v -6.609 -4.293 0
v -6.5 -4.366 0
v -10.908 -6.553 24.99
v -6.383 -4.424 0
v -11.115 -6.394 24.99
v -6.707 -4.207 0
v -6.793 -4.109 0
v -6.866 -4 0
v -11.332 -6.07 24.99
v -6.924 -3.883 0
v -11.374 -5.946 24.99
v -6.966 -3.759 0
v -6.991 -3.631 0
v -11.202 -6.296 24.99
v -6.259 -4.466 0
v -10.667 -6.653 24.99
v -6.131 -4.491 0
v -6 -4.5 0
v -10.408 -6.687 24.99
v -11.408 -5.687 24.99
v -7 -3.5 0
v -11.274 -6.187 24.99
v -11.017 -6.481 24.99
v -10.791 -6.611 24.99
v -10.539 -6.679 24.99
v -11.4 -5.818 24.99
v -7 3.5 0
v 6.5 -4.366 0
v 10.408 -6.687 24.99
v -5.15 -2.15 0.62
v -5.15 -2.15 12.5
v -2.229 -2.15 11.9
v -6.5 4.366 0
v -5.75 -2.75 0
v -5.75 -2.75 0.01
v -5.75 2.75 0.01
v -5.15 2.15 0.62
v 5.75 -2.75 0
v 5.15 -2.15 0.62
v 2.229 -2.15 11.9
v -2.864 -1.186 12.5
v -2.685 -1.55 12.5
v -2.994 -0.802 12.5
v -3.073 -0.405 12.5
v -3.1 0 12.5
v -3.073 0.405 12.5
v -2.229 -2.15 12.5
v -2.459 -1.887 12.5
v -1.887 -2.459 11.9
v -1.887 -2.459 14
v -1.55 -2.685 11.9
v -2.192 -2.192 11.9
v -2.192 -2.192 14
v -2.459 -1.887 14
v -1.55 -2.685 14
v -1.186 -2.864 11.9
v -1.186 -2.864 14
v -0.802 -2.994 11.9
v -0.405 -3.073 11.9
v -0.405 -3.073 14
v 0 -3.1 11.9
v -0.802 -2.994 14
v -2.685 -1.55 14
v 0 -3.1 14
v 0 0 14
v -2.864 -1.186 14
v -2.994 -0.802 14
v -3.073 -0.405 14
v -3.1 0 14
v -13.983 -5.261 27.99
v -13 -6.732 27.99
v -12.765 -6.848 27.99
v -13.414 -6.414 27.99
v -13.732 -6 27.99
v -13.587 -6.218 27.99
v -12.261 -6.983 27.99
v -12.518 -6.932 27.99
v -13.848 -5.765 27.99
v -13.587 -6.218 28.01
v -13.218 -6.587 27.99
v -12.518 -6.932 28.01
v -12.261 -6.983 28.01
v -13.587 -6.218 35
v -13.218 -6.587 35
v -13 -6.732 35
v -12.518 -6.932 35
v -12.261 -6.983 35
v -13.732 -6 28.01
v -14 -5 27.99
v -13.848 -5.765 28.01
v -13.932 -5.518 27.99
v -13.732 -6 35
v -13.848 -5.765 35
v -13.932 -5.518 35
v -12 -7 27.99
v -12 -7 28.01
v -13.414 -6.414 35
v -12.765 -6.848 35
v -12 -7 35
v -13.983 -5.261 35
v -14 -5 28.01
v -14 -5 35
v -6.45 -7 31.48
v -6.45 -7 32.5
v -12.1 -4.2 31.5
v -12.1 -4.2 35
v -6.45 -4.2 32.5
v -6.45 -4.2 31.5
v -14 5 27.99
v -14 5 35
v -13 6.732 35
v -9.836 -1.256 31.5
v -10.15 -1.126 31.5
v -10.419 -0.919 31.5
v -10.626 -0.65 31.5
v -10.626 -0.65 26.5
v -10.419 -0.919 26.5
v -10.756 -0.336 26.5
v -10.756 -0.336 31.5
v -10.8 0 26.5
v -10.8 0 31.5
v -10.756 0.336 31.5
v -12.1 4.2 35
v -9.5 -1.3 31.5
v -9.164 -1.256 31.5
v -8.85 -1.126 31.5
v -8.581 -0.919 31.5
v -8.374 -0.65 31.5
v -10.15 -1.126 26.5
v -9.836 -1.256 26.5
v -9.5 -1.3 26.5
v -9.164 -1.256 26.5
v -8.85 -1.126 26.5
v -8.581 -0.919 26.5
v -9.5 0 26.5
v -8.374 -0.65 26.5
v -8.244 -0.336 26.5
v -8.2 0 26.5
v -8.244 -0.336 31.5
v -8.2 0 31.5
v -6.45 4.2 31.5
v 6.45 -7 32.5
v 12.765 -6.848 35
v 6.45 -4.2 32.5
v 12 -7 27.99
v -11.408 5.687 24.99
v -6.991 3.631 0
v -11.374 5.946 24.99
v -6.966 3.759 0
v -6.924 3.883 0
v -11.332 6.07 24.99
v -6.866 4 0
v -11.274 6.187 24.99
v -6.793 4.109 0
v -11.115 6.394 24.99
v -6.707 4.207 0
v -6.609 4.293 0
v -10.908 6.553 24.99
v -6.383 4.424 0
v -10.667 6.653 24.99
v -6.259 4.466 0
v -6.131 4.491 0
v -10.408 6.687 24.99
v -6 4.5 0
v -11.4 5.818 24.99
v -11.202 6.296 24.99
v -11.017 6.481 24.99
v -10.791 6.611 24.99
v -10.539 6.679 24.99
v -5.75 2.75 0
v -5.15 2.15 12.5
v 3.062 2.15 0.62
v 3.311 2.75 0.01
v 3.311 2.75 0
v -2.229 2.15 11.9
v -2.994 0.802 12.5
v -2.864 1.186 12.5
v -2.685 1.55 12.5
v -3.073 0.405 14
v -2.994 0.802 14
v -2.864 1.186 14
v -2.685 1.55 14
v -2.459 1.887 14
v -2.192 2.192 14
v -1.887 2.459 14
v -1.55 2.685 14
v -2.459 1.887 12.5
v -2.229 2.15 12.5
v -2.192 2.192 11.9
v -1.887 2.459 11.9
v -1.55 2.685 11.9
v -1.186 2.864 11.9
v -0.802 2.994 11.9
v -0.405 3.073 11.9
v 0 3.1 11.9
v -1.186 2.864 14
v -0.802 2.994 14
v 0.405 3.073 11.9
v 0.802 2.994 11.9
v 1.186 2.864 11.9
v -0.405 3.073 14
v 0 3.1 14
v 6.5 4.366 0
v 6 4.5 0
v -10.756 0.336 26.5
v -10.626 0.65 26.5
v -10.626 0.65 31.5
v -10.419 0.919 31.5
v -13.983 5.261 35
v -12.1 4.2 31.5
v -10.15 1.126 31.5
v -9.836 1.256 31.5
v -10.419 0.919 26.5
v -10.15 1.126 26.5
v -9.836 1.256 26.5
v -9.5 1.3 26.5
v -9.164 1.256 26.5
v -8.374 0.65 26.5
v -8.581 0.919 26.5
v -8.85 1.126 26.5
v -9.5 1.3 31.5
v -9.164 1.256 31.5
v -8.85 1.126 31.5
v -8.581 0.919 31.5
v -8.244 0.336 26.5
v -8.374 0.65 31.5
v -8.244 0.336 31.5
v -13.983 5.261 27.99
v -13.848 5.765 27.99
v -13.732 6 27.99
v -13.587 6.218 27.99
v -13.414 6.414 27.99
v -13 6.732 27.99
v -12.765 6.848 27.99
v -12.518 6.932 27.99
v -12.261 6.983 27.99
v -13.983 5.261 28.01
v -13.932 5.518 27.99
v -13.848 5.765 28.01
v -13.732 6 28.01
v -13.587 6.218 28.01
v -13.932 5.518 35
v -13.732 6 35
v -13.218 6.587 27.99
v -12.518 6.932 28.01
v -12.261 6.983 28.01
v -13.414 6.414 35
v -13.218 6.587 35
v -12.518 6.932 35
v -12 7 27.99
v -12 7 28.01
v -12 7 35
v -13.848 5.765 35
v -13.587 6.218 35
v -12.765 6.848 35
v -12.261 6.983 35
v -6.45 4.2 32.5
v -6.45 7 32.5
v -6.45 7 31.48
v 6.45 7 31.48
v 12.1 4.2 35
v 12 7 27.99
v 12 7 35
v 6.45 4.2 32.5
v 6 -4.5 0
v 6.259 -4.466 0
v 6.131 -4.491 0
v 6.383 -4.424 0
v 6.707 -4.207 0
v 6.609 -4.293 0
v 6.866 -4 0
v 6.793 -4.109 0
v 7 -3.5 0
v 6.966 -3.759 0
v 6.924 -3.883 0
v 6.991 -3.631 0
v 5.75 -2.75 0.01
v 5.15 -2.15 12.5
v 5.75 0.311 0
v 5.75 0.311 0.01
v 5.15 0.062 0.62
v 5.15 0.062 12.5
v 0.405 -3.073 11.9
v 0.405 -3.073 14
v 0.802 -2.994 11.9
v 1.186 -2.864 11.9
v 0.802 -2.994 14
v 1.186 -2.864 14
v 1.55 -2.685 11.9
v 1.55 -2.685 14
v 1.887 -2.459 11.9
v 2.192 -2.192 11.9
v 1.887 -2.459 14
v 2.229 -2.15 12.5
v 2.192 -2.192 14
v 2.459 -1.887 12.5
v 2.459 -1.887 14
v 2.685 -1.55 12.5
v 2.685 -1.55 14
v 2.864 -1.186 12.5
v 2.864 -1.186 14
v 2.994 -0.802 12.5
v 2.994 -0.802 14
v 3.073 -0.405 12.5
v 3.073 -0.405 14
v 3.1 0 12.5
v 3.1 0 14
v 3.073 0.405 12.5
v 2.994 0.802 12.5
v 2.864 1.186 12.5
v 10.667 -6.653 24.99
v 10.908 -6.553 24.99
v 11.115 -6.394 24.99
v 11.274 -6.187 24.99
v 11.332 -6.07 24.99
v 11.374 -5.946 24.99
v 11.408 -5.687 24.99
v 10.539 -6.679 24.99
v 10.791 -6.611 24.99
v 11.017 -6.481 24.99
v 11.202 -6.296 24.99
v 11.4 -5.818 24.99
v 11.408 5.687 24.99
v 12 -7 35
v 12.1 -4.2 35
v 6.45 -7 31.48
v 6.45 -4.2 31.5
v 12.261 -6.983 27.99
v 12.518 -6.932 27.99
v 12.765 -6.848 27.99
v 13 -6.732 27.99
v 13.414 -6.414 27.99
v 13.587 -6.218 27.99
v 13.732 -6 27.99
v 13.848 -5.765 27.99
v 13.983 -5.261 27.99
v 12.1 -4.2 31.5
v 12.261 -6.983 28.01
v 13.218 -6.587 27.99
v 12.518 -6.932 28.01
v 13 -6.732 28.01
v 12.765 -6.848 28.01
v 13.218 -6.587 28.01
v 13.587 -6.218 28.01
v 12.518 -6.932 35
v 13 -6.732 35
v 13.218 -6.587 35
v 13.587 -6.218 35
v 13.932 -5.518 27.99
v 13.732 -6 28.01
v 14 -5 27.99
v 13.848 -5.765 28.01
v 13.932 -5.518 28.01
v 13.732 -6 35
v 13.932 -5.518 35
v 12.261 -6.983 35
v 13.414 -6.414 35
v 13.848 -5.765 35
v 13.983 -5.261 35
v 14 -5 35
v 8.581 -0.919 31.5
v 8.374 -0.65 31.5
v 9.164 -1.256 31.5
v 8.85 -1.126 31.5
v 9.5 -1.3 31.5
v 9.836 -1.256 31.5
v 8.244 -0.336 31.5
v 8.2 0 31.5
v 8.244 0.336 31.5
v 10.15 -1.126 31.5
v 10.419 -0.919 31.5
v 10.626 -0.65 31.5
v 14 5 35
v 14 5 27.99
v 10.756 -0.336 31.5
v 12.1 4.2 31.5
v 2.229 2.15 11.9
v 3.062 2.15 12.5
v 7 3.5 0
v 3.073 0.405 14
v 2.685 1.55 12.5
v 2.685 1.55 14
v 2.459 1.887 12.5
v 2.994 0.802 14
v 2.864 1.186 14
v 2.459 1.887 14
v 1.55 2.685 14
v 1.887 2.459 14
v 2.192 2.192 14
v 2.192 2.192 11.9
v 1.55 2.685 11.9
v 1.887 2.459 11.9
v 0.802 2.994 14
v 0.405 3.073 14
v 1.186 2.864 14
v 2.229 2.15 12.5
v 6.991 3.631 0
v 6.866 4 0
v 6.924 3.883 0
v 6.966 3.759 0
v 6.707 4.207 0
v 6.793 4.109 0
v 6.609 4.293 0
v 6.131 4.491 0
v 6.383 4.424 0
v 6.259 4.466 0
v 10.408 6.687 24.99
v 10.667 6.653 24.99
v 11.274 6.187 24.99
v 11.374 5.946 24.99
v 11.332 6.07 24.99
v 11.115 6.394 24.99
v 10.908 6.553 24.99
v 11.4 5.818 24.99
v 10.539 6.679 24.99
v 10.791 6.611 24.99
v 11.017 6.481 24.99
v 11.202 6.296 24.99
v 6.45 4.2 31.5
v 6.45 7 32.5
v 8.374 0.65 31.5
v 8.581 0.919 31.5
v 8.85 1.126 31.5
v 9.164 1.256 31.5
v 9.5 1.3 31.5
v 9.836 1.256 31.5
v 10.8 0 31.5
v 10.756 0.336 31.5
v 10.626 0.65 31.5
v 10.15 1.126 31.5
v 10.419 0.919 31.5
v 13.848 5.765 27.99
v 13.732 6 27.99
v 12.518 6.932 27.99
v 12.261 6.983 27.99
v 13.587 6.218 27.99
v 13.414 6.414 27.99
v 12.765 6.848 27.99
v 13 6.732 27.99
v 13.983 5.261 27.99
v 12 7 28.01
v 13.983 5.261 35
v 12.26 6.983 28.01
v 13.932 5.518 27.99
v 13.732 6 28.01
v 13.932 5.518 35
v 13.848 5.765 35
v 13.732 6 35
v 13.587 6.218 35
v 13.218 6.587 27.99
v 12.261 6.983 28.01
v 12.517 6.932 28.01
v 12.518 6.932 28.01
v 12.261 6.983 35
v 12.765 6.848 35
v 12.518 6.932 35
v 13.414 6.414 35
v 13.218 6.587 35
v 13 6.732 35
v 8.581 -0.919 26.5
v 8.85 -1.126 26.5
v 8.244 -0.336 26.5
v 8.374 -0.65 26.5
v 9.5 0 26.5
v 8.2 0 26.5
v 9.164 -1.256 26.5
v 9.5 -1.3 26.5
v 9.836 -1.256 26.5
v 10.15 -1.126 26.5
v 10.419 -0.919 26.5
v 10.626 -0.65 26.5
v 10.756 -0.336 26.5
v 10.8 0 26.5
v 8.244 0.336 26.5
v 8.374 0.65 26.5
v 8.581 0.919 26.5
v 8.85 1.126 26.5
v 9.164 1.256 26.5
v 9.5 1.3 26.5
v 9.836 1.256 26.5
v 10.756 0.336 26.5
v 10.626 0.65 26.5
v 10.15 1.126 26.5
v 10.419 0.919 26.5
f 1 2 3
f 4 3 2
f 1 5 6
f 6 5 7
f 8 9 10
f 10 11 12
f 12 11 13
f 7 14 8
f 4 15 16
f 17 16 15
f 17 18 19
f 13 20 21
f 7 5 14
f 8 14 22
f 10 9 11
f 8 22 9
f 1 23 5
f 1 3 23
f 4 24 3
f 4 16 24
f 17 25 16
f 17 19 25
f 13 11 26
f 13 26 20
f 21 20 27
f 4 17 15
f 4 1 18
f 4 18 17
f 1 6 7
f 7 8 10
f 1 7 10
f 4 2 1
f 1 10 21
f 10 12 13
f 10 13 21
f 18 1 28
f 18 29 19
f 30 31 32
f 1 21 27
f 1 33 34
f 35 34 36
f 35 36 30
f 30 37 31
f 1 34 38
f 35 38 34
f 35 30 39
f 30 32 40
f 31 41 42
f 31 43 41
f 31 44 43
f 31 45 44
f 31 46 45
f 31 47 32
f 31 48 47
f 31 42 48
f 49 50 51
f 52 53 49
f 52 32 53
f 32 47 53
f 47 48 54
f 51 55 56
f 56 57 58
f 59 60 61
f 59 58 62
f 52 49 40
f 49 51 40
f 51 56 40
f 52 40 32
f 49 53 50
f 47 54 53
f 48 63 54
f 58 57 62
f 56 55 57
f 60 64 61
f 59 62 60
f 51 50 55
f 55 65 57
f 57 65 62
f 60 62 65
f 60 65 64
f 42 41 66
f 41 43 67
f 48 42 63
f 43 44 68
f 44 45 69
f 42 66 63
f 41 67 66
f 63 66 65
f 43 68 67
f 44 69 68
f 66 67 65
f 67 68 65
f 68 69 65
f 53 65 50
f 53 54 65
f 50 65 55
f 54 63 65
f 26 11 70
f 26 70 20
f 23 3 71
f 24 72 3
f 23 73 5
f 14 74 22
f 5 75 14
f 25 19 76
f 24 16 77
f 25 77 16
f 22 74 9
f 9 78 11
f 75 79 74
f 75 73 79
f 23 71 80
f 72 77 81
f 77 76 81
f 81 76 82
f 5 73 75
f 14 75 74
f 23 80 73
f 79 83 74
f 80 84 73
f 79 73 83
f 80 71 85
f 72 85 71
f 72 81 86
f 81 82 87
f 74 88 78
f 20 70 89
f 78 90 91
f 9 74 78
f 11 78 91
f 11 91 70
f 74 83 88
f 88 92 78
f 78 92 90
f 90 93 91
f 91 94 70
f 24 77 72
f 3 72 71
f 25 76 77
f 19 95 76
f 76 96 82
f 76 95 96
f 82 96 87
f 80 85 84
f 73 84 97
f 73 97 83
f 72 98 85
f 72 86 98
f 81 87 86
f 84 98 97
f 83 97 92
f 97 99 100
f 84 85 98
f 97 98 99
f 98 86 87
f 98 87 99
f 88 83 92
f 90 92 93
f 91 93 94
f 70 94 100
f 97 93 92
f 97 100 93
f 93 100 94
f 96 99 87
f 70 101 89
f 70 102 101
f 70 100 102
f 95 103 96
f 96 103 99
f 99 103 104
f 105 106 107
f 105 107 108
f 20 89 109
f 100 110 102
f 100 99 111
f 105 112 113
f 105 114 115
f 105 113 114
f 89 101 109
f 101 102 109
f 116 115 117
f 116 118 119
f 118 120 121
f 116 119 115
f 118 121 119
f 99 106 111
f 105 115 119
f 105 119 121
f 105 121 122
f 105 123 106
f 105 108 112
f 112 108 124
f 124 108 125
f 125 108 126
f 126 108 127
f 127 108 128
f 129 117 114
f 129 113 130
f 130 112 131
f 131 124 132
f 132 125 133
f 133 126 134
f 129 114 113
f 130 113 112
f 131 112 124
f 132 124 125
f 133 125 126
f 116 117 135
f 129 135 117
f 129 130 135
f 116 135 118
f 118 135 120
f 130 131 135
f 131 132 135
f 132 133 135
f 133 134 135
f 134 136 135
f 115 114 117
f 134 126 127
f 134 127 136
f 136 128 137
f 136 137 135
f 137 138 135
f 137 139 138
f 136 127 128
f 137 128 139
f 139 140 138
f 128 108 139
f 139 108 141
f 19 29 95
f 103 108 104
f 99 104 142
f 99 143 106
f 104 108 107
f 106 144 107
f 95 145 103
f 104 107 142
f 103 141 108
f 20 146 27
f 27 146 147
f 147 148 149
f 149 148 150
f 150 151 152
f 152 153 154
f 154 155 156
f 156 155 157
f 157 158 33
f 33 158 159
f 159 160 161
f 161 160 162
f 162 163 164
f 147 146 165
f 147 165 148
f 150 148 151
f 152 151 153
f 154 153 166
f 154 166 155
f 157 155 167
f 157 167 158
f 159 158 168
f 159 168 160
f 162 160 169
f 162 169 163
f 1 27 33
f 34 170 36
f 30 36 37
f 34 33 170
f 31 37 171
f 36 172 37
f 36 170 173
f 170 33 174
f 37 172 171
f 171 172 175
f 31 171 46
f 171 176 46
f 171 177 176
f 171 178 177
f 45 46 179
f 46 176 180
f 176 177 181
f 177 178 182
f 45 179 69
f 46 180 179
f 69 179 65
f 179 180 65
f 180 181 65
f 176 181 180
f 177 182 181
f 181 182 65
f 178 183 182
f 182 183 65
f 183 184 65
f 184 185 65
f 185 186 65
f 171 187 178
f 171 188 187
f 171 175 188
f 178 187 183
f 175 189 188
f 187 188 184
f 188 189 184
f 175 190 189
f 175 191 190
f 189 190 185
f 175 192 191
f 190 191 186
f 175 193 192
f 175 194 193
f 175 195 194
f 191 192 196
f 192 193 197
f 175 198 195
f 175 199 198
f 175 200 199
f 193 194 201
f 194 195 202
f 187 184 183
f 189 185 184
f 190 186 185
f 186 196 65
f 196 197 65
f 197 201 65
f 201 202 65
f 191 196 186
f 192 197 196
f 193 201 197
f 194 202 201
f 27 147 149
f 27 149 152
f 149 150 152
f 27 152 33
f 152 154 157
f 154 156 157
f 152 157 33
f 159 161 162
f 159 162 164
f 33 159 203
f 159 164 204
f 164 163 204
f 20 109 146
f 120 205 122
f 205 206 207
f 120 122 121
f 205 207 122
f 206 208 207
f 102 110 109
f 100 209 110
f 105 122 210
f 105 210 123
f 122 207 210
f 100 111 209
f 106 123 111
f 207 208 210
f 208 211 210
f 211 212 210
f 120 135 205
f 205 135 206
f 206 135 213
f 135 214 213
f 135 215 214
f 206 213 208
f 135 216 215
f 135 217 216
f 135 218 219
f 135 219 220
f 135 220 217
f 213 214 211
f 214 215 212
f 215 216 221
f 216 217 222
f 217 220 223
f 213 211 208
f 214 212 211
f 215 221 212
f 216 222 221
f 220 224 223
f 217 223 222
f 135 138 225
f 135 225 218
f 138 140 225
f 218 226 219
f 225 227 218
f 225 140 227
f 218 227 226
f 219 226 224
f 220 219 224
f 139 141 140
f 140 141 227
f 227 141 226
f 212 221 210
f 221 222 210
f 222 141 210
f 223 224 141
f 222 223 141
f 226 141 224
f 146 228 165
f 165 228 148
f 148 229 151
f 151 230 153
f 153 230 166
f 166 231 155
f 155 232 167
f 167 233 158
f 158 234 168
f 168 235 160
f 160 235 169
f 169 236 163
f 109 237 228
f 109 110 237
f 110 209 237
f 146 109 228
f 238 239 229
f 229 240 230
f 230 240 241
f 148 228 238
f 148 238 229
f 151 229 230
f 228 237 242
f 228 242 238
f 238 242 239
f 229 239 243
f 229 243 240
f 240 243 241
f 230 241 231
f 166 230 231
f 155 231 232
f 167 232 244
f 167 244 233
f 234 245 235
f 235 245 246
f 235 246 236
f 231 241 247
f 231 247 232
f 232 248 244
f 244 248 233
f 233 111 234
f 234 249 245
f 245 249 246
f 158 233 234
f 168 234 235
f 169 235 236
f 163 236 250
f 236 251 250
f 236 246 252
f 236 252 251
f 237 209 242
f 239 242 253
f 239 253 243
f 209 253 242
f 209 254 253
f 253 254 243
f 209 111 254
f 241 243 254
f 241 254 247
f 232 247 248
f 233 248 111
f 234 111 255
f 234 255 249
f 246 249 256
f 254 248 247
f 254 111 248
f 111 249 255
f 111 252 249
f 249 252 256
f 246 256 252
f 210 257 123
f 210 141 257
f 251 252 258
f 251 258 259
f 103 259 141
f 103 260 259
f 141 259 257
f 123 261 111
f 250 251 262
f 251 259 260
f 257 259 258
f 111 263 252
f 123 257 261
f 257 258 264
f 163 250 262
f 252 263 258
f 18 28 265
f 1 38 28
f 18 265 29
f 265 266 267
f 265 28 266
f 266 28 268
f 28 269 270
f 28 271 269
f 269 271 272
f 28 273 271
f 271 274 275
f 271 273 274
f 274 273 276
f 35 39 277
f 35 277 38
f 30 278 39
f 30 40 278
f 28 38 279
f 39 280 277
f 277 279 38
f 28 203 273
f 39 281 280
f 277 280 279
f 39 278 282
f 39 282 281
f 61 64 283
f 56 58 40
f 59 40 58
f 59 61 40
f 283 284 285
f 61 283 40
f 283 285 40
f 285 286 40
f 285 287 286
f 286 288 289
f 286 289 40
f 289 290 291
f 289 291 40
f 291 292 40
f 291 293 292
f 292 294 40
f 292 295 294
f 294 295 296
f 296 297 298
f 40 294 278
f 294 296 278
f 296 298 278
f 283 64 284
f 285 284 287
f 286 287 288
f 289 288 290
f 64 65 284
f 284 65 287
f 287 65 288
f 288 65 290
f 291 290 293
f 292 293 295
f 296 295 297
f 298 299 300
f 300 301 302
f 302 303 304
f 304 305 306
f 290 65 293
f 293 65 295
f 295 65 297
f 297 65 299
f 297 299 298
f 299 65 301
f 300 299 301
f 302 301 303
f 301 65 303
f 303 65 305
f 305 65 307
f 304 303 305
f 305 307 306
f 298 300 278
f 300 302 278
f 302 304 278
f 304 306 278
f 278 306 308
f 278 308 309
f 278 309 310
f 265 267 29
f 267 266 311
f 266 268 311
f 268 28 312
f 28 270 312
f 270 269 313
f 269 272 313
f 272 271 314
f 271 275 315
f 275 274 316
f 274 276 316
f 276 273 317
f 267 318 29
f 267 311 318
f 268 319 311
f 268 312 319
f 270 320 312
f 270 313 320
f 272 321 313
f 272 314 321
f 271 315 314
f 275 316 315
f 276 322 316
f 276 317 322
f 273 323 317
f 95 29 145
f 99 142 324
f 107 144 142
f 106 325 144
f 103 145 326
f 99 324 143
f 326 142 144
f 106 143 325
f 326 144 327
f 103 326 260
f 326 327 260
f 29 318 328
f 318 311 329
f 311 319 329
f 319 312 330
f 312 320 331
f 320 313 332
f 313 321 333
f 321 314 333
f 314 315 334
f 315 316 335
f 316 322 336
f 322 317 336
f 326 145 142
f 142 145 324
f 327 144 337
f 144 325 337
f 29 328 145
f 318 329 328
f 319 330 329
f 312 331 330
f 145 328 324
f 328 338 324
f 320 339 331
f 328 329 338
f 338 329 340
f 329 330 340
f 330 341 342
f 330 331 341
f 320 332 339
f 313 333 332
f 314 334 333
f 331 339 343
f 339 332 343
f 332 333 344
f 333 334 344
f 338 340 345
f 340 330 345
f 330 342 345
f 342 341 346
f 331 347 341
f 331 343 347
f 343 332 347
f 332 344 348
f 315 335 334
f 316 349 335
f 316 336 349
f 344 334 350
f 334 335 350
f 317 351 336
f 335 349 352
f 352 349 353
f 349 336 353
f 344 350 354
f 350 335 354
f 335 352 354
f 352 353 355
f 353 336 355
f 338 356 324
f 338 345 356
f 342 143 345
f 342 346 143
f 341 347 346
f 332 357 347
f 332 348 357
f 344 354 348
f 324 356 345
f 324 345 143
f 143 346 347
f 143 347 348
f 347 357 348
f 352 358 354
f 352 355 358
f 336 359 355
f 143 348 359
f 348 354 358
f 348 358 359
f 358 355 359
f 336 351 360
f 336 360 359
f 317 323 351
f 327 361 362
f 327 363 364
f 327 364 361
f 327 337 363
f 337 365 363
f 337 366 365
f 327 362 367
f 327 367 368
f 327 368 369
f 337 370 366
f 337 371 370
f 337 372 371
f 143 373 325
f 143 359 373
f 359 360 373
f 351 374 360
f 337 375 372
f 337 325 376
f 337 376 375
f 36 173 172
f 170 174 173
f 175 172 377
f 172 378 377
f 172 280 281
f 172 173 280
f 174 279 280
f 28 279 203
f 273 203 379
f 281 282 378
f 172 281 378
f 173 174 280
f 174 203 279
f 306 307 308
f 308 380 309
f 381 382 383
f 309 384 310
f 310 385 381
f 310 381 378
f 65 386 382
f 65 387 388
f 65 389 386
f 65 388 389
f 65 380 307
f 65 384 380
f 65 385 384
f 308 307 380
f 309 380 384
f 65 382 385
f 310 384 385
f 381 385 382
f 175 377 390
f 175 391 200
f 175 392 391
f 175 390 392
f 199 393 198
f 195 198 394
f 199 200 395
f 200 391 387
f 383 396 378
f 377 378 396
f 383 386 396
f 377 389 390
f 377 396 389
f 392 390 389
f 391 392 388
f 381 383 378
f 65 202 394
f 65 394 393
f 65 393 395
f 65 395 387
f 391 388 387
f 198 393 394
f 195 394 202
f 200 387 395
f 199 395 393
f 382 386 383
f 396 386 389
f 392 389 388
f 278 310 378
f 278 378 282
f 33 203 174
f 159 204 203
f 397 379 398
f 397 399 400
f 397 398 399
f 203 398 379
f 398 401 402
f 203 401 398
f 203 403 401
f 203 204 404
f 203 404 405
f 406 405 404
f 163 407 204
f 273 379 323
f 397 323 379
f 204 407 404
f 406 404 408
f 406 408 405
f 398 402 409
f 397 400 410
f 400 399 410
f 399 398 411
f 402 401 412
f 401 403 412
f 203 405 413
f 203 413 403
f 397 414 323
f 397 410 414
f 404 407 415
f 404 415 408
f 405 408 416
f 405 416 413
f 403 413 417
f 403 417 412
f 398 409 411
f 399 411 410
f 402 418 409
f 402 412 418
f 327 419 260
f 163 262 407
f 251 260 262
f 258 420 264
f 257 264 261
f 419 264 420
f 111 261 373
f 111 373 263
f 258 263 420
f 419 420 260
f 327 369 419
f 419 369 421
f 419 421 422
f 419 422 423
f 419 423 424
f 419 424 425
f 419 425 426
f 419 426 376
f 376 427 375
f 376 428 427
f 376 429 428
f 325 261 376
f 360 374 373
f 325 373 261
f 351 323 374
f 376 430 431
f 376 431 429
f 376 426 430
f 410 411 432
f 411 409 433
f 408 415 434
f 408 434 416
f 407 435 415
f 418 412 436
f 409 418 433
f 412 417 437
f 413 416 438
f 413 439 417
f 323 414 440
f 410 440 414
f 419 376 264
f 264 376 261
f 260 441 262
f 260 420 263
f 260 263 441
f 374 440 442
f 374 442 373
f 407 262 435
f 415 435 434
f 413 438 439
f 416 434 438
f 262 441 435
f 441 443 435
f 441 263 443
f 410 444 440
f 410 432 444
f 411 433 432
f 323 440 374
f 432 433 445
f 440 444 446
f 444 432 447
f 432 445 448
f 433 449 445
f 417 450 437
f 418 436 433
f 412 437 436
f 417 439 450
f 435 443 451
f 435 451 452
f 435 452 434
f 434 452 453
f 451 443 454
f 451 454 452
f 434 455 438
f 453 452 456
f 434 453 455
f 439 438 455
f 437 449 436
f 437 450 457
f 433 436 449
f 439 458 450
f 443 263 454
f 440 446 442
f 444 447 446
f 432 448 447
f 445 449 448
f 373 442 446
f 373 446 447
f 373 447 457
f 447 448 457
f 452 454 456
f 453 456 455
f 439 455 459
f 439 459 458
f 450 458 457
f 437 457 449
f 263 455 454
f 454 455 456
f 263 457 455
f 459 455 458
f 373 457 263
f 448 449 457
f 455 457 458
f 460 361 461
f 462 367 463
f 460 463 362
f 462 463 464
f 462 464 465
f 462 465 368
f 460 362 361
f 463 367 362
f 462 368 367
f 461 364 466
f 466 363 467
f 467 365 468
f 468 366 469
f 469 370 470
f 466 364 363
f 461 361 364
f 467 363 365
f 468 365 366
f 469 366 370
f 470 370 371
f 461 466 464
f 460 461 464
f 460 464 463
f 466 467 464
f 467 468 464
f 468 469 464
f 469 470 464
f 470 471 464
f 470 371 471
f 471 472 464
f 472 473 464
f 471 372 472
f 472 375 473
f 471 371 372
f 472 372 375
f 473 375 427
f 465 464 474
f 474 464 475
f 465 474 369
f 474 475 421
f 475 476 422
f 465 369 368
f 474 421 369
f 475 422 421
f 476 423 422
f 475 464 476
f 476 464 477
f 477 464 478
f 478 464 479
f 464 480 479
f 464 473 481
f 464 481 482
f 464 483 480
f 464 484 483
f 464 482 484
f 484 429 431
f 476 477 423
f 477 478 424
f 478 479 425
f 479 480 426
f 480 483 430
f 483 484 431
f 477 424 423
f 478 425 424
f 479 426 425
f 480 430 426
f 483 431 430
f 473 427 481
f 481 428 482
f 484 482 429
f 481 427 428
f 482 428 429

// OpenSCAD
// =====================================================================
//  paddle_with_pocket.scad — drafted 25 mm PADDLE ending in a TM1 pocket,
//  with a clamp for a 0.3 x 12.7 mm feeler-stock leaf (no holes in the leaf)
//  PROJECT SCRATCH · 05-engineering/cad/tips · units: mm
//  Used by: the SP1 hand (one per nail, MECH LEAD — all parameters below are
//  yours to override) and the Stage-0 HAND WAND (hand_wand_handle.scad).
// ---------------------------------------------------------------------
//  FRAME = TM1 frame: pocket mouth centre at the origin, +Z toward the root,
//  -Z toward the scalp.  The LEAF runs along Y through the root block.
//  Geometry, bottom to top:
//    z = 0 .. PADDLE_LEN      drafted body: nose 14 x 9 (R1) growing at DRAFT_X / DRAFT_Y
//                             per side (10 deg / 5 deg) to 22.8 x 13.4 at z = 25
//    z = 25 .. 28             transition to the root block (above the knuckle plate)
//    z = 28 .. 35             root block 28 x 14: clamp WINDOW 24.2 x 8.4 x 3.5 deep from
//                             the top; the leaf lies on the window floor (z = 31.5),
//                             passes out through 12.9 x 1.0 slots in the Y walls, and is
//                             pressed down by the CLAMP BAR (24 x 8 x 3.2, with a
//                             12.9 x 0.25 locating groove) via 2x M3x8 screws at x = +/-9.5
//                             (rev 2026-10-01: bar 23 / screws +/-10 broke the 3.4 holes out
//                             of the bar ends by 0.2 mm)
//                             (2.6 mm holes, thread-forming in PETG; or 4.0 mm for inserts)
//  Pocket: tm1_pocket() — 10.3 x 4.3 x 12.5, mouth chamfer 0.6, N52 6x2 magnet recess
//  (magnet dropped in at a PRINT PAUSE at model z = 11.9, see README).
//  Print: PETG, NOSE UP (root on the bed), 0.2 mm layers, 4 perimeters. The window
//  floor is an 8.4 mm bridge — fine for PETG; or paint supports in the window only.
//  TPU seam SLEEVE (PART = "sleeve"): TPU 90A, 0.6-1.0 mm wall, stretched over the nose
//  (0.4 mm interference) covering z = +3 .. -5.5 so the tip/pocket seam is enclosed.
// =====================================================================
include <tm1_tang_lib.scad>
$fn = TM1_FN;

PART = "paddle";        // "paddle" | "bar" | "sleeve" | "assembly"

// ---- nose and draft (nose = TM1 shoulder band size) ----
NOSE_X     = TM1_SH_X;  // 14
NOSE_Y     = TM1_SH_Y;  // 9
NOSE_R     = TM1_SH_R;  // 1
DRAFT_X    = 10;        // deg per side, stroke-facing faces (H-4.3: >= 10)
DRAFT_Y    = 5;         // deg per side, across-stroke faces (kept at 5 so two paddles at
                        // 20 mm pitch stay >= 3 mm apart at the root: 13.4 -> 6.6 mm gap)
PADDLE_LEN = 25;        // protrusion below the knuckle plate (H-4.5 design basis)
POCKET_TILT = 0;        // deg about Y: attack-angle holder variants (0 for SP1 — angle lives in the tip)
BOLT_VARIANT = false;   // TM1-B: M3 cross-bolt through nose + tang (heavy tips); widens nose Y to 12

// ---- root block / leaf clamp ----
ROOT_X     = 28;
ROOT_Y     = 14;
ROOT_TRANS = 3;         // drafted transition height
ROOT_H     = 7;         // straight block height
ROOT_R     = 2;
LEAF_W     = 12.7;      // feeler stock width (1/2")
LEAF_T     = 0.30;      // feeler stock thickness (0.012")
WINDOW_X   = 24.2;
WINDOW_Y   = 8.4;
WINDOW_D   = 3.5;       // depth from the root top
WALL_SLOT_W = LEAF_W + 0.2;
WALL_SLOT_H = 1.0;      // tall slot in the Y walls: the bar sets the leaf height, not the slot
LEAF_THROUGH = true;    // slots in both Y walls (false: only -Y, leaf ends blind in the +Y wall)
SCREW_X    = 9.5;       // screws at (+/-SCREW_X, 0): 0.8 mm bar wall outboard, 1.85 mm clear of the leaf
SCREW_HOLE_D = 2.6;     // 2.6 = M3 thread-forming in PETG; 4.0 = M3 heat-set insert
SCREW_DEPTH  = 5;
BAR_X      = 24;
BAR_Y      = 8;
BAR_H      = 3.2;
BAR_GROOVE_D = 0.25;    // < LEAF_T so the bar presses the leaf, not the floor
BAR_HOLE_D = 3.4;

// ---- TPU seam sleeve ----
SLEEVE_WALL  = 0.8;
SLEEVE_INTERF = 0.2;    // per side
SLEEVE_TOP   = 3.0;     // z of the sleeve top on the nose
SLEEVE_BOT   = TM1_SH_BOT;  // -5.5: covers the whole shoulder band of the tip

// derived
nose_y   = BOLT_VARIANT ? 12 : NOSE_Y;
top_x    = NOSE_X + 2 * PADDLE_LEN * tan(DRAFT_X);
top_y    = nose_y + 2 * PADDLE_LEN * tan(DRAFT_Y);
z_root0  = PADDLE_LEN;
z_root1  = PADDLE_LEN + ROOT_TRANS;
z_top    = z_root1 + ROOT_H;
z_floor  = z_top - WINDOW_D;          // leaf rests here

module slab(x, y, r, z, h = 0.02) {
    translate([0, 0, z - h / 2]) linear_extrude(height = h) tm1_rrect(x, y, r);
}

module paddle_body() {
    hull() { slab(NOSE_X, nose_y, NOSE_R, 0.01); slab(top_x, top_y, NOSE_R, z_root0); }
    hull() { slab(top_x, top_y, NOSE_R, z_root0); slab(ROOT_X, ROOT_Y, ROOT_R, z_root1); }
    translate([0, 0, z_root1 - 0.01]) linear_extrude(height = ROOT_H + 0.01) tm1_rrect(ROOT_X, ROOT_Y, ROOT_R);
}

module paddle_cuts() {
    rotate([0, POCKET_TILT, 0]) tm1_pocket(cross_bolt = BOLT_VARIANT);
    if (BOLT_VARIANT) {   // countersunk head on +Y, hex nut recess on -Y, both under the sleeve
        yf = nose_y / 2 + TM1_XB_Z * tan(DRAFT_Y);
        translate([0, yf + 0.01, TM1_XB_Z]) rotate([90, 0, 0])
            cylinder(d1 = 6.4, d2 = 3.4, h = 1.6, $fn = TM1_FN);
        translate([0, -yf - 0.01, TM1_XB_Z]) rotate([-90, 0, 0])
            cylinder(d = 5.6 / cos(30), h = 2.5, $fn = 6);
    }
    // clamp window from the top
    translate([0, 0, z_floor + 50]) cube([WINDOW_X, WINDOW_Y, 100], center = true);
    // leaf slots through the Y walls
    sy = LEAF_THROUGH ? 0 : -ROOT_Y / 4;
    sl = LEAF_THROUGH ? ROOT_Y + 2 : ROOT_Y / 2 + 1;
    translate([0, sy, z_floor - 0.01 + WALL_SLOT_H / 2]) cube([WALL_SLOT_W, sl, WALL_SLOT_H + 0.02], center = true);
    // screw holes beside the leaf
    for (sx = [-SCREW_X, SCREW_X])
        translate([sx, 0, z_floor - SCREW_DEPTH]) cylinder(d = SCREW_HOLE_D, h = SCREW_DEPTH + 0.01, $fn = 24);
}

module paddle() { difference() { paddle_body(); paddle_cuts(); } }

// clamp bar, printed groove-side up (as modelled)
module clamp_bar() {
    difference() {
        translate([0, 0, BAR_H / 2]) cube([BAR_X, BAR_Y, BAR_H], center = true);
        translate([0, 0, BAR_GROOVE_D / 2 - 0.01]) cube([LEAF_W + 0.2, BAR_Y + 2, BAR_GROOVE_D + 0.02], center = true);
        for (sx = [-SCREW_X, SCREW_X]) translate([sx, 0, -1]) cylinder(d = BAR_HOLE_D, h = BAR_H + 2, $fn = 24);
    }
}

// TPU seam sleeve: inner = band (straight) then nose (drafted), minus interference;
// outer = inner + wall at the bottom, feathering toward the paddle surface at the top.
module seam_sleeve() {
    ix0 = NOSE_X - 2 * SLEEVE_INTERF;  iy0 = nose_y - 2 * SLEEVE_INTERF;
    ix1 = NOSE_X + 2 * SLEEVE_TOP * tan(DRAFT_X) - 2 * SLEEVE_INTERF;
    iy1 = nose_y + 2 * SLEEVE_TOP * tan(DRAFT_Y) - 2 * SLEEVE_INTERF;
    difference() {
        hull() {
            slab(ix0 + 2 * SLEEVE_WALL, iy0 + 2 * SLEEVE_WALL, NOSE_R + SLEEVE_WALL, SLEEVE_BOT + 0.01);
            slab(ix1 + 2 * SLEEVE_WALL * 0.75, iy1 + 2 * SLEEVE_WALL * 0.75, NOSE_R + SLEEVE_WALL, SLEEVE_TOP - 0.01);
        }
        translate([0, 0, SLEEVE_BOT - 1]) linear_extrude(height = 1 - SLEEVE_BOT + 0.01) tm1_rrect(ix0, iy0, NOSE_R);
        hull() { slab(ix0, iy0, NOSE_R, 0); slab(ix1, iy1, NOSE_R, SLEEVE_TOP + 1); }
    }
}

if (PART == "paddle") paddle();
if (PART == "bar") clamp_bar();
if (PART == "sleeve") seam_sleeve();
if (PART == "assembly") {
    color("orange") paddle();
    color("gray") translate([0, 0, z_floor + LEAF_T - BAR_GROOVE_D]) clamp_bar();
    color("silver") translate([0, 0, z_floor + LEAF_T / 2]) cube([LEAF_W, 70, LEAF_T], center = true);
    color("black", 0.4) seam_sleeve();
}
